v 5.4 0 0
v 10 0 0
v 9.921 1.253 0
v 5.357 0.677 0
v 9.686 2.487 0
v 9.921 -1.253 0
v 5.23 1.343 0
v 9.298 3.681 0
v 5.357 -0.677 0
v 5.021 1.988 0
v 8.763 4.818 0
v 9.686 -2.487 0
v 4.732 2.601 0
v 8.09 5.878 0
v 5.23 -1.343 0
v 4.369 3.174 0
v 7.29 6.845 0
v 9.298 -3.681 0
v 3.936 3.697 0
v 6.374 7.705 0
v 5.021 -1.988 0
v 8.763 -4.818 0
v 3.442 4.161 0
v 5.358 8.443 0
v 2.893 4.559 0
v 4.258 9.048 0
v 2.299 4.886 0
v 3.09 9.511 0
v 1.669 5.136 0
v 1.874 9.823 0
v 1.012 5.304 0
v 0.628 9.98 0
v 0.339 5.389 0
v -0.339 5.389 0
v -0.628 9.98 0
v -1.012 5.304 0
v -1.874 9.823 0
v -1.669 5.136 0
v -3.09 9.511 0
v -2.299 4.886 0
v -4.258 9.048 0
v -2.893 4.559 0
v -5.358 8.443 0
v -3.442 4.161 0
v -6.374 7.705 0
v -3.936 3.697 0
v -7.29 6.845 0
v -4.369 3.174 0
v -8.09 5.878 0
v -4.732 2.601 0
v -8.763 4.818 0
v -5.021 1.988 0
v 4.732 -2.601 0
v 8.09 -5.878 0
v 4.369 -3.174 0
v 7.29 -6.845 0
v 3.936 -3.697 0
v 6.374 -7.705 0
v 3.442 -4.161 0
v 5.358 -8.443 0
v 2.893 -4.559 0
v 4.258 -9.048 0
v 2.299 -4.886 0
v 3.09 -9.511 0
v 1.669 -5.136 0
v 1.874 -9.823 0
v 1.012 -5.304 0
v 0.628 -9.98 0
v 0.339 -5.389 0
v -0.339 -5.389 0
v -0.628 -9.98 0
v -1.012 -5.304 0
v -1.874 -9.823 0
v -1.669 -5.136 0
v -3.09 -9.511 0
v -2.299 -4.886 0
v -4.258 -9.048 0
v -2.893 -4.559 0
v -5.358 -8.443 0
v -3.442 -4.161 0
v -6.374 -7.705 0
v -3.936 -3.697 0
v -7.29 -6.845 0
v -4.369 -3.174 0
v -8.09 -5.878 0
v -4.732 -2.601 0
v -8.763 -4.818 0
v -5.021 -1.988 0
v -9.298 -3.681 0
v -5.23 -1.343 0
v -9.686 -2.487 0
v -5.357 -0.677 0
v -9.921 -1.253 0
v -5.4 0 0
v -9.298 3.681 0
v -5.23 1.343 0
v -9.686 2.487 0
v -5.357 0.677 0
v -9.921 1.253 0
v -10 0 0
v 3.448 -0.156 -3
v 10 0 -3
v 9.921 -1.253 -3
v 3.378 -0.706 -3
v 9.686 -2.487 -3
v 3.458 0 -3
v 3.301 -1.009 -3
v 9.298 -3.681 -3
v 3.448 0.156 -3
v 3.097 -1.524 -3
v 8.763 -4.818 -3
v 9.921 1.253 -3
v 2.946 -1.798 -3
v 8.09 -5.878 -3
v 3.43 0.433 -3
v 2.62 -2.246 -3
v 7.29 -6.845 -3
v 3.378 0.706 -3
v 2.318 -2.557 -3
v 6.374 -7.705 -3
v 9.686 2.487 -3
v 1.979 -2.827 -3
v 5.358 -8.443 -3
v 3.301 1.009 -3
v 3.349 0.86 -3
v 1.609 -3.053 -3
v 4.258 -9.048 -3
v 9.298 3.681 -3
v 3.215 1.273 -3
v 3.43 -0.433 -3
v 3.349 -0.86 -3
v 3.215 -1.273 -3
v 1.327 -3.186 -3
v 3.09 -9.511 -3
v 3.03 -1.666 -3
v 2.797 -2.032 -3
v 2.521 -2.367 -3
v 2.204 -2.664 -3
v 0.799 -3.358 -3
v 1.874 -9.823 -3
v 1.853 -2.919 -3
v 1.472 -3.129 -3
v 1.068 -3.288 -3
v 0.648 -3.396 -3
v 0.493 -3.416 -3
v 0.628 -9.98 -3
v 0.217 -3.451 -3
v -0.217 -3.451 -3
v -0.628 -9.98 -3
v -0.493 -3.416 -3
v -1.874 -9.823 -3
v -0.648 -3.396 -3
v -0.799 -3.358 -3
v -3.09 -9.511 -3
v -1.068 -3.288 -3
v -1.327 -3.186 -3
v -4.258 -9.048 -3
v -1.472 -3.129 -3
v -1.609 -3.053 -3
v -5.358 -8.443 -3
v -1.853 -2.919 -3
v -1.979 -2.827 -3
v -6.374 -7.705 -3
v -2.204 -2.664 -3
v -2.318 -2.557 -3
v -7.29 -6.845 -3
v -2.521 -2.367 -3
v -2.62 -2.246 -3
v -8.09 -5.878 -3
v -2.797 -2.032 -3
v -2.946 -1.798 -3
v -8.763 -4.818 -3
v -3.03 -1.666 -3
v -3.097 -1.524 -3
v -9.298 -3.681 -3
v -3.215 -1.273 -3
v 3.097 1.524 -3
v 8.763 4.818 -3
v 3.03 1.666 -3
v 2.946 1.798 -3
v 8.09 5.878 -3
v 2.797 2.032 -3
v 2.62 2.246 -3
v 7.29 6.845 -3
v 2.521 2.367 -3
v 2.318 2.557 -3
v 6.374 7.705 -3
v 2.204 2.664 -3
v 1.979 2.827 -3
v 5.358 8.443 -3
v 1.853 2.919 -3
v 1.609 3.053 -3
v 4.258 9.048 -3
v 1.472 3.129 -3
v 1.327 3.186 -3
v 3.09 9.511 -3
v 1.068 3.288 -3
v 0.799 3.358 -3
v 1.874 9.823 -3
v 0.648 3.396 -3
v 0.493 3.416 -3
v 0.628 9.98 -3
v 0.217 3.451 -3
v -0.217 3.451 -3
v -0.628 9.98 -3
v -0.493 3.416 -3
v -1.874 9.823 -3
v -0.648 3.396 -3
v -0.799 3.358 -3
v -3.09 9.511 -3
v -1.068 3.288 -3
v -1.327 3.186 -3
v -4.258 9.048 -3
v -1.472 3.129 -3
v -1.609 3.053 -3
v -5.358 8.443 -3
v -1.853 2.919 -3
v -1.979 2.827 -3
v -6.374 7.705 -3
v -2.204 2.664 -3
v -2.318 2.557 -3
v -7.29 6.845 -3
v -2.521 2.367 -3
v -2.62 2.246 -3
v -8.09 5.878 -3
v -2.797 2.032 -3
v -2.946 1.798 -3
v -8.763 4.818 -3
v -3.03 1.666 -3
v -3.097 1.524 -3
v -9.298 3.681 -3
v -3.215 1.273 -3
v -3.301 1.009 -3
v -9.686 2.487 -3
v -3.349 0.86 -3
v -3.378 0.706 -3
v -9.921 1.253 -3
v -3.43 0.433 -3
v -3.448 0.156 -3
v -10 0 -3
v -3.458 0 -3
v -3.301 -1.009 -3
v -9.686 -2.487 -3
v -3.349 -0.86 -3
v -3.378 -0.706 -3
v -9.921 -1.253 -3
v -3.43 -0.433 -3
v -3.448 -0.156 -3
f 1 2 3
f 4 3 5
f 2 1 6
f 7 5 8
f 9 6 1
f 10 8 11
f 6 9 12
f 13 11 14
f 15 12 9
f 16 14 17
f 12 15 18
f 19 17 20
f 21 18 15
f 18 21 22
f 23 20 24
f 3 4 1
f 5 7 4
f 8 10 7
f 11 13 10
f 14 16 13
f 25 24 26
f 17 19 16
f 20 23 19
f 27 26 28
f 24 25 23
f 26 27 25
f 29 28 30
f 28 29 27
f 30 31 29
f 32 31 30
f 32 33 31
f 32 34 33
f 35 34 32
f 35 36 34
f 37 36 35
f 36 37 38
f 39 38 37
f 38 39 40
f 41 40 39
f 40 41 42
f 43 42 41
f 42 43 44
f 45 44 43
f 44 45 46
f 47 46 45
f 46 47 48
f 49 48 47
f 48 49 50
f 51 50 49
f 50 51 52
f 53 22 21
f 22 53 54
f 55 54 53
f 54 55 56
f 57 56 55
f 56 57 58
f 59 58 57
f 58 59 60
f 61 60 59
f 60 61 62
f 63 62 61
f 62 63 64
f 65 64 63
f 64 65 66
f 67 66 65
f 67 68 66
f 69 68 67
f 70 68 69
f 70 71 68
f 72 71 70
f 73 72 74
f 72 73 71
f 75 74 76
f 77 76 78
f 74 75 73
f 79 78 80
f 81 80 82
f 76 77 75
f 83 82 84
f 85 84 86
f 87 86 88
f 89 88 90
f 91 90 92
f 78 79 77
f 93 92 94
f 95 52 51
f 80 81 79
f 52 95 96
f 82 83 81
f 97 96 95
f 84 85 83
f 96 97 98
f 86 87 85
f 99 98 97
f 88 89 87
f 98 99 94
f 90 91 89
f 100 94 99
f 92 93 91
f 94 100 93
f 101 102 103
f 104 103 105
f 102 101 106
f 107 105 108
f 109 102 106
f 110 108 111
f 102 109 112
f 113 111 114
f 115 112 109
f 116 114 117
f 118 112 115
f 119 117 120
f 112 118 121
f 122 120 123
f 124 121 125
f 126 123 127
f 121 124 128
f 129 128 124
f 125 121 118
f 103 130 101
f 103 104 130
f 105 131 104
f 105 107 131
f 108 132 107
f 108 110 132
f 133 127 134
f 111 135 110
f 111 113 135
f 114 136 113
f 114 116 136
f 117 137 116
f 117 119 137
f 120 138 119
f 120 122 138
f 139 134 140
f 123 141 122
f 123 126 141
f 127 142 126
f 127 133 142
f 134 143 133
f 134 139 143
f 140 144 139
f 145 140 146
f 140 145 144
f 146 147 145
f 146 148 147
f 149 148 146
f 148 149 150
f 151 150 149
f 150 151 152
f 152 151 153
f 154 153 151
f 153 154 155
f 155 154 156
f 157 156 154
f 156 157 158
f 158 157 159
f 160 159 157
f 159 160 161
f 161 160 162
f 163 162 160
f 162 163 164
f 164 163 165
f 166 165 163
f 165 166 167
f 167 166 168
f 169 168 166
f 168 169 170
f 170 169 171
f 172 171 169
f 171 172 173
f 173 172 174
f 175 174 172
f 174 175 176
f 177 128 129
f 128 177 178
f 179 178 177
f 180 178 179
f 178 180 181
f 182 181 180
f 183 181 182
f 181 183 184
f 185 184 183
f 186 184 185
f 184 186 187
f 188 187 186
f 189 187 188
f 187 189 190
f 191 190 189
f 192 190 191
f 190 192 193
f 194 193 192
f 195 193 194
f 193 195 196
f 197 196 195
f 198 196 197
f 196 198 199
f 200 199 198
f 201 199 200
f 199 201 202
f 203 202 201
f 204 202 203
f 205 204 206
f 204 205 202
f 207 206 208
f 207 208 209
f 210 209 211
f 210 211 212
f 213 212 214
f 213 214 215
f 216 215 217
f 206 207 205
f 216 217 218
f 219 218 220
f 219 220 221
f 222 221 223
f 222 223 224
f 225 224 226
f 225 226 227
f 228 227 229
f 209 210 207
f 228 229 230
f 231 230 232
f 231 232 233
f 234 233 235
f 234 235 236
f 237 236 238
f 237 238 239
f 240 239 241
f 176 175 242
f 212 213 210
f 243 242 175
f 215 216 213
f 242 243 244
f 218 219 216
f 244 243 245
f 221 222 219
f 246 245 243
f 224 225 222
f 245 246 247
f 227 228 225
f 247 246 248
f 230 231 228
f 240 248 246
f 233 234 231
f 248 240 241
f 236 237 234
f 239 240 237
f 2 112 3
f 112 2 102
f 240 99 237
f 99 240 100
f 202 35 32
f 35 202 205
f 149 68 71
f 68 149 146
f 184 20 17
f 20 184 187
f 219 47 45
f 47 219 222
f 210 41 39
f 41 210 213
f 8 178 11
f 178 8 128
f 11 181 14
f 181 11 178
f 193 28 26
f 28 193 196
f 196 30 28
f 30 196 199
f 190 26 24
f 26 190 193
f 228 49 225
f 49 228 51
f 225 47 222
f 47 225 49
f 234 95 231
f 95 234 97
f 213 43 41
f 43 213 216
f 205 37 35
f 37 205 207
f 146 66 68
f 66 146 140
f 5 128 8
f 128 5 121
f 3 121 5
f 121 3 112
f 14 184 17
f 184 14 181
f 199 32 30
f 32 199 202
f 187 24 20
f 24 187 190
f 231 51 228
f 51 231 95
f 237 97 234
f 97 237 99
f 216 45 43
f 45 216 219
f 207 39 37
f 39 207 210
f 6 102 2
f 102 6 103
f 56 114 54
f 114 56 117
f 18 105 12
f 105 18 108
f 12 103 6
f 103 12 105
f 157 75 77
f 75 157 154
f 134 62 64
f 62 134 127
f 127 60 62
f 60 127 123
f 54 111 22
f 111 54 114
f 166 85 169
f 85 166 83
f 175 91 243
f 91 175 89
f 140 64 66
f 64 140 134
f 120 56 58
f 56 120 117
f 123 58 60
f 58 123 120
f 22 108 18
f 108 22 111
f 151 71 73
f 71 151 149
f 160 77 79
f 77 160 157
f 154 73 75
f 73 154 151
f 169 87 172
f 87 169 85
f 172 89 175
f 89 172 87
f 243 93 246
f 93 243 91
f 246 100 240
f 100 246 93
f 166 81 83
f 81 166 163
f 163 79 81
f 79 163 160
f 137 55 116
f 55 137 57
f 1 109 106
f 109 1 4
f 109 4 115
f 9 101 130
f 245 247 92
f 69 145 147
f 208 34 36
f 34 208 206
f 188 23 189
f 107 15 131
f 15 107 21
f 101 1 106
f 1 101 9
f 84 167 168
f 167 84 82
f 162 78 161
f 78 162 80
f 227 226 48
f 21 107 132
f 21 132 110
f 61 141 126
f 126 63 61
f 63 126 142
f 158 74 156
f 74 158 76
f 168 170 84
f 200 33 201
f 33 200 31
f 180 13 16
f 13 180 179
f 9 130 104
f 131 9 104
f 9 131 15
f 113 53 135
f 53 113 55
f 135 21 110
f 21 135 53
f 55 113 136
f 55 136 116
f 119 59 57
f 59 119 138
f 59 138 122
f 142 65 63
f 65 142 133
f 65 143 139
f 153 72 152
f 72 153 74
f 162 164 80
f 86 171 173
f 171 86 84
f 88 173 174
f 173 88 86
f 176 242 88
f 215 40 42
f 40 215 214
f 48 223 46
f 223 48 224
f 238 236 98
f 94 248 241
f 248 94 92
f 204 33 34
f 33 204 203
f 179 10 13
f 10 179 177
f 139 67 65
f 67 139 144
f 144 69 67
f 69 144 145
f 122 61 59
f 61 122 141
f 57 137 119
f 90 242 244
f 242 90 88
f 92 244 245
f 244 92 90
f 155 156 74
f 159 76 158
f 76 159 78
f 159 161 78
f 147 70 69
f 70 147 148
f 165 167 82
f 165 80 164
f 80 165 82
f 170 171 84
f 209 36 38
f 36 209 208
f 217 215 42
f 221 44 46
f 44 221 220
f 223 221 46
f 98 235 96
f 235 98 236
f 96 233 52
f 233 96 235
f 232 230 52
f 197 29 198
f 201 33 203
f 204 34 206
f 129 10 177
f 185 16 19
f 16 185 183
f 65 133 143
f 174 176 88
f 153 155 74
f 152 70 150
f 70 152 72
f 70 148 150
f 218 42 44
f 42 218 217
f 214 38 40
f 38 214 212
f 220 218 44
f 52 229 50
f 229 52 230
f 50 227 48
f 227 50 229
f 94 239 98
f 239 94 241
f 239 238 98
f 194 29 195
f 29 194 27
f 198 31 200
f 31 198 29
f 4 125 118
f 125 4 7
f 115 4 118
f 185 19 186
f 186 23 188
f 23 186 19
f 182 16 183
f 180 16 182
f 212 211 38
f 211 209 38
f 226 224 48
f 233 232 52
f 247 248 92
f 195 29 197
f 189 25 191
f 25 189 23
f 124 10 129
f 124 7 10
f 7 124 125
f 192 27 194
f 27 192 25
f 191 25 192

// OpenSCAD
$fn = 50;


difference() {
	union() {
		translate(v = [0, 0, -3.0000000000]) {
			cylinder(h = 3, r = 7.0000000000);
		}
		translate(v = [0, 0, -3.0000000000]) {
			cylinder(h = 3, r = 10.0000000000);
		}
	}
	union() {
		translate(v = [0, 0, 0]) {
			rotate(a = [0, 0, 0]) {
				difference() {
					union() {
						#translate(v = [0, 0, -3.0000000000]) {
							cylinder(h = 3, r = 2.6000000000);
						}
						#translate(v = [0, 0, -3.9000000000]) {
							cylinder(h = 3.9000000000, r1 = 2.8750000000, r2 = 5.4000000000);
						}
						#translate(v = [0, 0, -3.0000000000]) {
							cylinder(h = 3, r = 2.8750000000);
						}
						#translate(v = [0, 0, -3.0000000000]) {
							cylinder(h = 3, r = 2.6000000000);
						}
					}
					union();
				}
			}
		}
	}
}
